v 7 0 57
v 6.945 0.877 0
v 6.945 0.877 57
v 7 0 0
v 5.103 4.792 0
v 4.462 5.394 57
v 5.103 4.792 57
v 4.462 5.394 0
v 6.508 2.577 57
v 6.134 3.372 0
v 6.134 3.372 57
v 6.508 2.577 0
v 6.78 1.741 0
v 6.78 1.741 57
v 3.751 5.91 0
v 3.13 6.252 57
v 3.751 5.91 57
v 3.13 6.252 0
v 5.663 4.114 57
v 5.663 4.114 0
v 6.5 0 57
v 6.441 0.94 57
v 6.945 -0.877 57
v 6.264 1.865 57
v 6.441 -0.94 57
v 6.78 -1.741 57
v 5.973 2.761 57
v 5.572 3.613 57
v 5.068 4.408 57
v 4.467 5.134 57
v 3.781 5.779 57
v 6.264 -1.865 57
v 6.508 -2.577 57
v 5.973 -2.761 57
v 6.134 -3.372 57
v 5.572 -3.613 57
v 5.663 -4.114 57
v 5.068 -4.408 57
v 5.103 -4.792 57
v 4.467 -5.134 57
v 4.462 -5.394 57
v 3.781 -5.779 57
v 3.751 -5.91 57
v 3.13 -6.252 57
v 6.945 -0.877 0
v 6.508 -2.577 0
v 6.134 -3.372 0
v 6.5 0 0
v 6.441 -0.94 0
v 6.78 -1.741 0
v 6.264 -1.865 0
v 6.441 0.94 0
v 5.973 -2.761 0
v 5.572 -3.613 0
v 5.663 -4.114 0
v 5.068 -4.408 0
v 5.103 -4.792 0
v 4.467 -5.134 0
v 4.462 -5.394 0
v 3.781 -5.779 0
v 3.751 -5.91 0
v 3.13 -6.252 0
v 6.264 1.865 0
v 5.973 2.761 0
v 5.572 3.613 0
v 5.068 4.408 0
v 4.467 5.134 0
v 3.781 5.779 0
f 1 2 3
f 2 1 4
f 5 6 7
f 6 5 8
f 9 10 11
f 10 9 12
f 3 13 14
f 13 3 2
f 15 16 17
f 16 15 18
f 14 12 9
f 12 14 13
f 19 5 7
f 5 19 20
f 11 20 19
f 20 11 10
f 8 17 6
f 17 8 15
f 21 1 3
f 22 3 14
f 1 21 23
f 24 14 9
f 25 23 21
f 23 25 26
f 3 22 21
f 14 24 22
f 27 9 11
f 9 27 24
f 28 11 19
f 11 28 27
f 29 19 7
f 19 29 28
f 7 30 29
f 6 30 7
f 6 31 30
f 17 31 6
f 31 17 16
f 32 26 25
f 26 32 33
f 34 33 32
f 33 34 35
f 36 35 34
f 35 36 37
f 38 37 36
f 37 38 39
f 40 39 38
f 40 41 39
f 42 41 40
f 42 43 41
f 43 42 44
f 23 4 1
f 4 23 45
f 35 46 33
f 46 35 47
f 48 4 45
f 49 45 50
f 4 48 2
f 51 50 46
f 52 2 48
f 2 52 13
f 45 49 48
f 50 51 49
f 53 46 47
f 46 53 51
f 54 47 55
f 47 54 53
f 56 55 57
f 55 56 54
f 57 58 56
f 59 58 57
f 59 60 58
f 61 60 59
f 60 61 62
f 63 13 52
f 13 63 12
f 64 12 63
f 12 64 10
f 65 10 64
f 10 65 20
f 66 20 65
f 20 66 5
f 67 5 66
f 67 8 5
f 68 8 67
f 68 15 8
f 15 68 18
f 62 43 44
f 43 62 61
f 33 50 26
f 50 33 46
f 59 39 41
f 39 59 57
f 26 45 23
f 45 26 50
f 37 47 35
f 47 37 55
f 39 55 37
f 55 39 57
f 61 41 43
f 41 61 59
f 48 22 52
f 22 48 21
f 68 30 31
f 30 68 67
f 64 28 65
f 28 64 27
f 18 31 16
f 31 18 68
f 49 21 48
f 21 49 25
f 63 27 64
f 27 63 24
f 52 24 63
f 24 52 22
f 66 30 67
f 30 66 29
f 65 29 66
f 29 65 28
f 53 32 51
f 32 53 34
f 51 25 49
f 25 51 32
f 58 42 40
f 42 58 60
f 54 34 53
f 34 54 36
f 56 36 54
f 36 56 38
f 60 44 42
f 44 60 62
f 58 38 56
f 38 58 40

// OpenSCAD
$fn = 50;


difference() {
	union() {
		cylinder(h = 57, r = 7.0000000000);
		translate(v = [-4.0000000000, 0, 0]) {
			cylinder(h = 57, r = 7.0000000000);
		}
	}
	union() {
		cylinder(h = 57, r = 3.2500000000);
		cylinder(h = 57, r = 1.8000000000);
		cylinder(h = 57, r = 1.8000000000);
		cylinder(h = 57, r = 1.8000000000);
		translate(v = [-8.5000000000, 0, 0]) {
			hull() {
				translate(v = [-3.7500000000, 0.0000000000, 0]) {
					cylinder(h = 57, r = 7.5000000000);
				}
				translate(v = [3.7500000000, 0.0000000000, 0]) {
					cylinder(h = 57, r = 7.5000000000);
				}
				translate(v = [-3.7500000000, -0.0000000000, 0]) {
					cylinder(h = 57, r = 7.5000000000);
				}
				translate(v = [3.7500000000, -0.0000000000, 0]) {
					cylinder(h = 57, r = 7.5000000000);
				}
			}
		}
		translate(v = [-1.0000000000, 0, 0.0000000000]) {
			cylinder(h = 57, r = 7.5000000000);
		}
	}
}
